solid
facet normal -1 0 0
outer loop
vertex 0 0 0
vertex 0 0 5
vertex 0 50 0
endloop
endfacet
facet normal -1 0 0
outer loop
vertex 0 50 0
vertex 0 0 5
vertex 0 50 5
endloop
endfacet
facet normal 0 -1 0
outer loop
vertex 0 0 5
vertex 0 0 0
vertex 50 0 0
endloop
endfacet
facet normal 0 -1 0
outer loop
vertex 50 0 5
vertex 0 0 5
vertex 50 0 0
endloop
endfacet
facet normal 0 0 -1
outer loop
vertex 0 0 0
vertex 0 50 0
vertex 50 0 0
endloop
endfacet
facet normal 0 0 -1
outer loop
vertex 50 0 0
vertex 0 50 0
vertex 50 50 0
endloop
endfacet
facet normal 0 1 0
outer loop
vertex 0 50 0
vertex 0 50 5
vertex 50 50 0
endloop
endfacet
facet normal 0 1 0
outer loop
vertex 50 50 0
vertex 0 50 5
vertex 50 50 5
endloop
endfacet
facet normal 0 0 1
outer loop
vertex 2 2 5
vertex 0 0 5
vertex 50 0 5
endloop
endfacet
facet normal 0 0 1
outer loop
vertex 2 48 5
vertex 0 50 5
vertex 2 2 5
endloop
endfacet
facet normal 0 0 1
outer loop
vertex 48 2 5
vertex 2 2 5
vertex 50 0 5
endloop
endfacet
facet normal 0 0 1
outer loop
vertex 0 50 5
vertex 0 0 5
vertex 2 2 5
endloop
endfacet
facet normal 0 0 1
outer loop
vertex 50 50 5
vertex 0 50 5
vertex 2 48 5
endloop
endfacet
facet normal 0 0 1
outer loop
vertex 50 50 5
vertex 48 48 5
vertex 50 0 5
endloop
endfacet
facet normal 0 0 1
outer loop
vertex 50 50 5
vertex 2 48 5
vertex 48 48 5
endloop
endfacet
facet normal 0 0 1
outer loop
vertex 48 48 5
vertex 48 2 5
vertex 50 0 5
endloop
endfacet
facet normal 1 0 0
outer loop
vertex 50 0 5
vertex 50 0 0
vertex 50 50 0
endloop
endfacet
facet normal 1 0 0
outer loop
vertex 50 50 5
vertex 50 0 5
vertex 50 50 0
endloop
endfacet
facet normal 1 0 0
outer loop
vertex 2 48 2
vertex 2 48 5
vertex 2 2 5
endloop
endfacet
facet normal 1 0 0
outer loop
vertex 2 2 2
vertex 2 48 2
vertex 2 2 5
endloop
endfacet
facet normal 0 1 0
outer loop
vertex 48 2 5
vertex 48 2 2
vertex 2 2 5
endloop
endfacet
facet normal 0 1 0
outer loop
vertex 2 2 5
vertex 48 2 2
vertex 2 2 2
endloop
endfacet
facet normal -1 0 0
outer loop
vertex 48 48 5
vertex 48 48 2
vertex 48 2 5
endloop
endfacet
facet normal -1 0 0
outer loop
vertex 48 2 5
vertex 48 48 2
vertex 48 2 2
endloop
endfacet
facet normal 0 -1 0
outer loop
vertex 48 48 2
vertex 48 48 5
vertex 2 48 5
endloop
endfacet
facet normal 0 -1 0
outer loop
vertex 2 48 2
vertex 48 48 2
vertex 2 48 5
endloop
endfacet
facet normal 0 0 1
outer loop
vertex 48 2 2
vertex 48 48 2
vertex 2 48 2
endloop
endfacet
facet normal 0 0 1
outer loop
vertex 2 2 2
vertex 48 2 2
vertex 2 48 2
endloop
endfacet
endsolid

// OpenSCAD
difference() {
cube ([50,50,5]);
translate ([2,2,2]) {
cube ([46,46,6]);
}
};
